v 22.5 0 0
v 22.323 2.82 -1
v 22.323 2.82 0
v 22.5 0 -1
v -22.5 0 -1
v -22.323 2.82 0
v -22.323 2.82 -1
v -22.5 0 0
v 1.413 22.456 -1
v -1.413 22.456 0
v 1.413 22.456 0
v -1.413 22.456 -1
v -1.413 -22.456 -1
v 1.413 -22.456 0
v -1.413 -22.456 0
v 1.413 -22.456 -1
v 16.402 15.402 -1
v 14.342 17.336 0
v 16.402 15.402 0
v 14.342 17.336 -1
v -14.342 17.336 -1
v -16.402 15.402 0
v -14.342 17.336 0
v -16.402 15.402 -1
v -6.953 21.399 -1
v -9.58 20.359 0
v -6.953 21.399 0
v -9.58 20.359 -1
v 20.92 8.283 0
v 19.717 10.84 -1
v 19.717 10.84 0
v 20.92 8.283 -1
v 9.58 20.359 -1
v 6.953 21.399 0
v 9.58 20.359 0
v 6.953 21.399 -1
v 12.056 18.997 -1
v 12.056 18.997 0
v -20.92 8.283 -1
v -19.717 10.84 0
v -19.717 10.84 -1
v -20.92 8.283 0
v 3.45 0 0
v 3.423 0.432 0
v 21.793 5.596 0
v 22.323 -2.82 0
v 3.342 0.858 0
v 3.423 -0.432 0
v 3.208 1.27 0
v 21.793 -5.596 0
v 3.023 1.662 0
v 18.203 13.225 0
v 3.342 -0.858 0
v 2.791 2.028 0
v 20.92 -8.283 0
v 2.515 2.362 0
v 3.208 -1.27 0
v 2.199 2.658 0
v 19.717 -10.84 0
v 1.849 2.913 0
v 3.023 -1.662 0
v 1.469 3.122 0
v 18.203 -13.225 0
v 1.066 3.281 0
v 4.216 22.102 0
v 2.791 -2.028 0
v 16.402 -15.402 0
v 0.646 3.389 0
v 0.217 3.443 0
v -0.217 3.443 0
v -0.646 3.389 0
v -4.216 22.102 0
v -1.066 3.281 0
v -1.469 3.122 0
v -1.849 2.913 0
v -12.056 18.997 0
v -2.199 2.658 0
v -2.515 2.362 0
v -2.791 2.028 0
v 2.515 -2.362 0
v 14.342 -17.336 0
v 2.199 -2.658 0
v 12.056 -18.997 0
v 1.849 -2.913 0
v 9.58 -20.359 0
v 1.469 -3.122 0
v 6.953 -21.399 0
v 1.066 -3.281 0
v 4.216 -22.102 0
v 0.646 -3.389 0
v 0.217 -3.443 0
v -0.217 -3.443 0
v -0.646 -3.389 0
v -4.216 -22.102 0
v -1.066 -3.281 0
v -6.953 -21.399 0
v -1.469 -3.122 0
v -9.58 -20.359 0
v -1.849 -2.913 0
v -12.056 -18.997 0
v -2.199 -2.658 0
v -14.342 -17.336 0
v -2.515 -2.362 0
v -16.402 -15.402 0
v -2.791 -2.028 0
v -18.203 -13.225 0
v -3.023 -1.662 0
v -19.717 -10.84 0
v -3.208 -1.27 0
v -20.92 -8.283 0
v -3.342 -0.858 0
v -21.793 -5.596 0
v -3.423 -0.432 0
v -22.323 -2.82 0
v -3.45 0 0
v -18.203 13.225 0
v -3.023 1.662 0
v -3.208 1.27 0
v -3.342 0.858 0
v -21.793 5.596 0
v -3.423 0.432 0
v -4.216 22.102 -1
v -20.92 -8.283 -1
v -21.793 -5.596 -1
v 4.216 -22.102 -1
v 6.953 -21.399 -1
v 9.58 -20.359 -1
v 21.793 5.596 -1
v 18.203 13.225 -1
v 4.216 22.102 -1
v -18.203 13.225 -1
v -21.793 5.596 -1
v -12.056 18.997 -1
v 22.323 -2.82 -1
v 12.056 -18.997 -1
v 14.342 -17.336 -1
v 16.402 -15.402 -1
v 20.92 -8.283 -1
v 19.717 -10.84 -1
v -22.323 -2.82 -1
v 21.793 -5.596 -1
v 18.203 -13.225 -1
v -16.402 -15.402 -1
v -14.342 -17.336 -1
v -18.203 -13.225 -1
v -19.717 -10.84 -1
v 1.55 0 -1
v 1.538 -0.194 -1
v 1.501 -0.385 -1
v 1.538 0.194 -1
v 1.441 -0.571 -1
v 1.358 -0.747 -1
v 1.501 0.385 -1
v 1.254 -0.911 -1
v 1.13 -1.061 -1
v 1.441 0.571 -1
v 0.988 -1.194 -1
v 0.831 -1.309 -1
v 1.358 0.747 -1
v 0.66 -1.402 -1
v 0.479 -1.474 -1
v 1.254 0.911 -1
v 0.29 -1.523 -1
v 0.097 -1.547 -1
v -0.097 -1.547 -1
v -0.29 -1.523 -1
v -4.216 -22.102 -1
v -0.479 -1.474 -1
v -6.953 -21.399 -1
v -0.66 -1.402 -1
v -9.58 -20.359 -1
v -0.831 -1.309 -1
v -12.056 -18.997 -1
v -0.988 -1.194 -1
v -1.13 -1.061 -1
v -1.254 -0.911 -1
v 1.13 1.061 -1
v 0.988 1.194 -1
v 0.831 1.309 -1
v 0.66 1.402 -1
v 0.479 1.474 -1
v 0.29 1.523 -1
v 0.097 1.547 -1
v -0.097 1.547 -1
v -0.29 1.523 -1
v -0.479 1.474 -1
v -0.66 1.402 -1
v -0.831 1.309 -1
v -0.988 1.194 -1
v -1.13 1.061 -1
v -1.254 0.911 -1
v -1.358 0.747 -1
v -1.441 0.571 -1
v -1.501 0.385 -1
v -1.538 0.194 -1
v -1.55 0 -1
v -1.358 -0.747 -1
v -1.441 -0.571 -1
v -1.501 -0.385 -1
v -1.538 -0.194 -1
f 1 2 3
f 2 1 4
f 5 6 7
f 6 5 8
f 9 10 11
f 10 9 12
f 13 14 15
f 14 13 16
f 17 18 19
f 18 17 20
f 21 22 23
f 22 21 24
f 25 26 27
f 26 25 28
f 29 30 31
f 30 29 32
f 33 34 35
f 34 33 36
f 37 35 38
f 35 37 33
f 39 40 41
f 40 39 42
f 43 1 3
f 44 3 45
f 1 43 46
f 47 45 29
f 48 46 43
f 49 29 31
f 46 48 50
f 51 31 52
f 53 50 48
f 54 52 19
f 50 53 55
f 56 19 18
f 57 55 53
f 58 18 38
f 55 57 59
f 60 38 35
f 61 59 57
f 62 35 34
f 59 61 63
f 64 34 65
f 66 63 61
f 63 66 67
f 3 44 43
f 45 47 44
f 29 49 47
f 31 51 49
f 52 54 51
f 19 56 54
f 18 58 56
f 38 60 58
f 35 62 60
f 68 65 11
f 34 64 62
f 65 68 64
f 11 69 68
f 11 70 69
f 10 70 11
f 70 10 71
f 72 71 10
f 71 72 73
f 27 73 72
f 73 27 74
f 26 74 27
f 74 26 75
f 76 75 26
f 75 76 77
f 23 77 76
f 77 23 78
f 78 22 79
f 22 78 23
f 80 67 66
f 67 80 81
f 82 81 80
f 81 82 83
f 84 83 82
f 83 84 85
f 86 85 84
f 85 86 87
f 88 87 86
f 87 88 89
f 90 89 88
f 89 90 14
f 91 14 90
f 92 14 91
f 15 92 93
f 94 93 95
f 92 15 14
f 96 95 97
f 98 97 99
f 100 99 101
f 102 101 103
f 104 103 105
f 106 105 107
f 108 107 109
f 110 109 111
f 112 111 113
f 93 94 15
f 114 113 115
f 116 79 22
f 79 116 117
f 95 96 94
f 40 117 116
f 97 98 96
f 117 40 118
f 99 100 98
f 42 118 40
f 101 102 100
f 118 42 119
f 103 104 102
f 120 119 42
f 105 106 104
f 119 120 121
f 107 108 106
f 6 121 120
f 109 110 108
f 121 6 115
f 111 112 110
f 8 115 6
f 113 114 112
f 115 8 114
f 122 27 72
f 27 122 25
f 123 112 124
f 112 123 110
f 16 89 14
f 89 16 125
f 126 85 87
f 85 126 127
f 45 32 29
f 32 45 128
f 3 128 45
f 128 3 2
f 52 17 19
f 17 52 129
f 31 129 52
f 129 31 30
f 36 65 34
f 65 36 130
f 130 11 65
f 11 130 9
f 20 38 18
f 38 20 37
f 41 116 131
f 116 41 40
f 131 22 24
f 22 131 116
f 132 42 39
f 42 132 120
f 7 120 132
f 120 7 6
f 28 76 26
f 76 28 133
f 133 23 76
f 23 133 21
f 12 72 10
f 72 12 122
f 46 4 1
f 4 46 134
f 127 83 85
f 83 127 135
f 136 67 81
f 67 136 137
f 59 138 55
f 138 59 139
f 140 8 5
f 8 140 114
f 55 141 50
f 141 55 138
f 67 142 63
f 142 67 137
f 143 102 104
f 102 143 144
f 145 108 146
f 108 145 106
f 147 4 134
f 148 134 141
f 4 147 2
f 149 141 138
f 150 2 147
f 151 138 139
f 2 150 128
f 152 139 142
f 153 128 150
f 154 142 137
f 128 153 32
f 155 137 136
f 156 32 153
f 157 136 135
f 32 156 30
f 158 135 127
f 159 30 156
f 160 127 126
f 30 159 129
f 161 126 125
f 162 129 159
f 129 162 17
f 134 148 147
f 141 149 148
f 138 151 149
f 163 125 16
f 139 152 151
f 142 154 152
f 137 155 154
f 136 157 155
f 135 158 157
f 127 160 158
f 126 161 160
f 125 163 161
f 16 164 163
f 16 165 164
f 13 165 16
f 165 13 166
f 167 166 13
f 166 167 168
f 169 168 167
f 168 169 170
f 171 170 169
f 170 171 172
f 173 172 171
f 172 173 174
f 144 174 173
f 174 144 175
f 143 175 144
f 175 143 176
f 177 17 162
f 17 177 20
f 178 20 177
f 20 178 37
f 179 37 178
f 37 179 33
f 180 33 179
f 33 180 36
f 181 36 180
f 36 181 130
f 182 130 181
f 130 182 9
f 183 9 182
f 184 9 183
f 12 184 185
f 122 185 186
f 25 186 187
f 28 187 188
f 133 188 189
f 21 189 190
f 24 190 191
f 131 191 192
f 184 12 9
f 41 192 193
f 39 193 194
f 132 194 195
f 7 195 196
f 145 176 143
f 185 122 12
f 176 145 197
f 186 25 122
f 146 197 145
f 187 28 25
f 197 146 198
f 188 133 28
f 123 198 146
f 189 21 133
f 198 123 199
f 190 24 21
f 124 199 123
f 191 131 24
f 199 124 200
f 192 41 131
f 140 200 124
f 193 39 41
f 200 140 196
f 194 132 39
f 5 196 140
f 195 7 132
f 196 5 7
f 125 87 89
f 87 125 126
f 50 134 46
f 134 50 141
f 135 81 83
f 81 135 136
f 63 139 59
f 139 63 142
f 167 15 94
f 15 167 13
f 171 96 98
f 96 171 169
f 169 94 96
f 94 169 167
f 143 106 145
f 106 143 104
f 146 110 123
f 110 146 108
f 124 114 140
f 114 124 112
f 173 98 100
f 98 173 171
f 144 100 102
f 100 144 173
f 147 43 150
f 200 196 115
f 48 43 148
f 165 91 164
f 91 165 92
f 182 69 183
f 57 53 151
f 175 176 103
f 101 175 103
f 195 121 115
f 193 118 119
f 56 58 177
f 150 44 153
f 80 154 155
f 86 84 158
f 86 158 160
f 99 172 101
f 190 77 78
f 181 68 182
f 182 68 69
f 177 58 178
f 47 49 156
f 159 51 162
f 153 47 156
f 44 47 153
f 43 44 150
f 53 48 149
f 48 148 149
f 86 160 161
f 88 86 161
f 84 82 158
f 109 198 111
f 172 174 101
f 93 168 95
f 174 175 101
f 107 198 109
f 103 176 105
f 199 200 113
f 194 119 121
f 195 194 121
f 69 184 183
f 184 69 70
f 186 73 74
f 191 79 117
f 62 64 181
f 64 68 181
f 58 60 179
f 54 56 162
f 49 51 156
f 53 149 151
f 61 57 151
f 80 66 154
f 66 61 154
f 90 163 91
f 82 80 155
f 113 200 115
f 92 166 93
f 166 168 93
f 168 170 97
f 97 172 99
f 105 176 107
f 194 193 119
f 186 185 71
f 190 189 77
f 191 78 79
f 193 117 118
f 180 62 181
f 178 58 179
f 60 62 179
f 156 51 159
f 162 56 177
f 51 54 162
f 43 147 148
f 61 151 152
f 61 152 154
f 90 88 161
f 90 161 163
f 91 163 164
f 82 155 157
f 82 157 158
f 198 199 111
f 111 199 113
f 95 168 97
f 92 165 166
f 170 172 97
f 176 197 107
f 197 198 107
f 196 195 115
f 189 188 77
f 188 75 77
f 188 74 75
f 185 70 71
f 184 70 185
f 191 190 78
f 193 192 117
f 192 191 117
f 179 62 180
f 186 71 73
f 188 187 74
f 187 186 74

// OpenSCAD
$fn = 50;


difference() {
	union() {
		translate(v = [0, 0, -1.0000000000]) {
			cylinder(h = 1.0000000000, r = 22.5000000000);
		}
		translate(v = [0, 0, -1.0000000000]) {
			cylinder(h = 1.0000000000, r = 2.8750000000);
		}
	}
	union() {
		translate(v = [0, 0, 0]) {
			rotate(a = [0, 0, 0]) {
				difference() {
					union() {
						#translate(v = [0, 0, -1.0000000000]) {
							cylinder(h = 1.0000000000, r = 1.2500000000);
						}
						#translate(v = [0, 0, -1.0000000000]) {
							cylinder(h = 1.0000000000, r1 = 1.5500000000, r2 = 3.4500000000);
						}
						#translate(v = [0, 0, -1.0000000000]) {
							cylinder(h = 1.0000000000, r = 1.5500000000);
						}
						#translate(v = [0, 0, -1.0000000000]) {
							cylinder(h = 1.0000000000, r = 1.2500000000);
						}
					}
					union();
				}
			}
		}
	}
}
